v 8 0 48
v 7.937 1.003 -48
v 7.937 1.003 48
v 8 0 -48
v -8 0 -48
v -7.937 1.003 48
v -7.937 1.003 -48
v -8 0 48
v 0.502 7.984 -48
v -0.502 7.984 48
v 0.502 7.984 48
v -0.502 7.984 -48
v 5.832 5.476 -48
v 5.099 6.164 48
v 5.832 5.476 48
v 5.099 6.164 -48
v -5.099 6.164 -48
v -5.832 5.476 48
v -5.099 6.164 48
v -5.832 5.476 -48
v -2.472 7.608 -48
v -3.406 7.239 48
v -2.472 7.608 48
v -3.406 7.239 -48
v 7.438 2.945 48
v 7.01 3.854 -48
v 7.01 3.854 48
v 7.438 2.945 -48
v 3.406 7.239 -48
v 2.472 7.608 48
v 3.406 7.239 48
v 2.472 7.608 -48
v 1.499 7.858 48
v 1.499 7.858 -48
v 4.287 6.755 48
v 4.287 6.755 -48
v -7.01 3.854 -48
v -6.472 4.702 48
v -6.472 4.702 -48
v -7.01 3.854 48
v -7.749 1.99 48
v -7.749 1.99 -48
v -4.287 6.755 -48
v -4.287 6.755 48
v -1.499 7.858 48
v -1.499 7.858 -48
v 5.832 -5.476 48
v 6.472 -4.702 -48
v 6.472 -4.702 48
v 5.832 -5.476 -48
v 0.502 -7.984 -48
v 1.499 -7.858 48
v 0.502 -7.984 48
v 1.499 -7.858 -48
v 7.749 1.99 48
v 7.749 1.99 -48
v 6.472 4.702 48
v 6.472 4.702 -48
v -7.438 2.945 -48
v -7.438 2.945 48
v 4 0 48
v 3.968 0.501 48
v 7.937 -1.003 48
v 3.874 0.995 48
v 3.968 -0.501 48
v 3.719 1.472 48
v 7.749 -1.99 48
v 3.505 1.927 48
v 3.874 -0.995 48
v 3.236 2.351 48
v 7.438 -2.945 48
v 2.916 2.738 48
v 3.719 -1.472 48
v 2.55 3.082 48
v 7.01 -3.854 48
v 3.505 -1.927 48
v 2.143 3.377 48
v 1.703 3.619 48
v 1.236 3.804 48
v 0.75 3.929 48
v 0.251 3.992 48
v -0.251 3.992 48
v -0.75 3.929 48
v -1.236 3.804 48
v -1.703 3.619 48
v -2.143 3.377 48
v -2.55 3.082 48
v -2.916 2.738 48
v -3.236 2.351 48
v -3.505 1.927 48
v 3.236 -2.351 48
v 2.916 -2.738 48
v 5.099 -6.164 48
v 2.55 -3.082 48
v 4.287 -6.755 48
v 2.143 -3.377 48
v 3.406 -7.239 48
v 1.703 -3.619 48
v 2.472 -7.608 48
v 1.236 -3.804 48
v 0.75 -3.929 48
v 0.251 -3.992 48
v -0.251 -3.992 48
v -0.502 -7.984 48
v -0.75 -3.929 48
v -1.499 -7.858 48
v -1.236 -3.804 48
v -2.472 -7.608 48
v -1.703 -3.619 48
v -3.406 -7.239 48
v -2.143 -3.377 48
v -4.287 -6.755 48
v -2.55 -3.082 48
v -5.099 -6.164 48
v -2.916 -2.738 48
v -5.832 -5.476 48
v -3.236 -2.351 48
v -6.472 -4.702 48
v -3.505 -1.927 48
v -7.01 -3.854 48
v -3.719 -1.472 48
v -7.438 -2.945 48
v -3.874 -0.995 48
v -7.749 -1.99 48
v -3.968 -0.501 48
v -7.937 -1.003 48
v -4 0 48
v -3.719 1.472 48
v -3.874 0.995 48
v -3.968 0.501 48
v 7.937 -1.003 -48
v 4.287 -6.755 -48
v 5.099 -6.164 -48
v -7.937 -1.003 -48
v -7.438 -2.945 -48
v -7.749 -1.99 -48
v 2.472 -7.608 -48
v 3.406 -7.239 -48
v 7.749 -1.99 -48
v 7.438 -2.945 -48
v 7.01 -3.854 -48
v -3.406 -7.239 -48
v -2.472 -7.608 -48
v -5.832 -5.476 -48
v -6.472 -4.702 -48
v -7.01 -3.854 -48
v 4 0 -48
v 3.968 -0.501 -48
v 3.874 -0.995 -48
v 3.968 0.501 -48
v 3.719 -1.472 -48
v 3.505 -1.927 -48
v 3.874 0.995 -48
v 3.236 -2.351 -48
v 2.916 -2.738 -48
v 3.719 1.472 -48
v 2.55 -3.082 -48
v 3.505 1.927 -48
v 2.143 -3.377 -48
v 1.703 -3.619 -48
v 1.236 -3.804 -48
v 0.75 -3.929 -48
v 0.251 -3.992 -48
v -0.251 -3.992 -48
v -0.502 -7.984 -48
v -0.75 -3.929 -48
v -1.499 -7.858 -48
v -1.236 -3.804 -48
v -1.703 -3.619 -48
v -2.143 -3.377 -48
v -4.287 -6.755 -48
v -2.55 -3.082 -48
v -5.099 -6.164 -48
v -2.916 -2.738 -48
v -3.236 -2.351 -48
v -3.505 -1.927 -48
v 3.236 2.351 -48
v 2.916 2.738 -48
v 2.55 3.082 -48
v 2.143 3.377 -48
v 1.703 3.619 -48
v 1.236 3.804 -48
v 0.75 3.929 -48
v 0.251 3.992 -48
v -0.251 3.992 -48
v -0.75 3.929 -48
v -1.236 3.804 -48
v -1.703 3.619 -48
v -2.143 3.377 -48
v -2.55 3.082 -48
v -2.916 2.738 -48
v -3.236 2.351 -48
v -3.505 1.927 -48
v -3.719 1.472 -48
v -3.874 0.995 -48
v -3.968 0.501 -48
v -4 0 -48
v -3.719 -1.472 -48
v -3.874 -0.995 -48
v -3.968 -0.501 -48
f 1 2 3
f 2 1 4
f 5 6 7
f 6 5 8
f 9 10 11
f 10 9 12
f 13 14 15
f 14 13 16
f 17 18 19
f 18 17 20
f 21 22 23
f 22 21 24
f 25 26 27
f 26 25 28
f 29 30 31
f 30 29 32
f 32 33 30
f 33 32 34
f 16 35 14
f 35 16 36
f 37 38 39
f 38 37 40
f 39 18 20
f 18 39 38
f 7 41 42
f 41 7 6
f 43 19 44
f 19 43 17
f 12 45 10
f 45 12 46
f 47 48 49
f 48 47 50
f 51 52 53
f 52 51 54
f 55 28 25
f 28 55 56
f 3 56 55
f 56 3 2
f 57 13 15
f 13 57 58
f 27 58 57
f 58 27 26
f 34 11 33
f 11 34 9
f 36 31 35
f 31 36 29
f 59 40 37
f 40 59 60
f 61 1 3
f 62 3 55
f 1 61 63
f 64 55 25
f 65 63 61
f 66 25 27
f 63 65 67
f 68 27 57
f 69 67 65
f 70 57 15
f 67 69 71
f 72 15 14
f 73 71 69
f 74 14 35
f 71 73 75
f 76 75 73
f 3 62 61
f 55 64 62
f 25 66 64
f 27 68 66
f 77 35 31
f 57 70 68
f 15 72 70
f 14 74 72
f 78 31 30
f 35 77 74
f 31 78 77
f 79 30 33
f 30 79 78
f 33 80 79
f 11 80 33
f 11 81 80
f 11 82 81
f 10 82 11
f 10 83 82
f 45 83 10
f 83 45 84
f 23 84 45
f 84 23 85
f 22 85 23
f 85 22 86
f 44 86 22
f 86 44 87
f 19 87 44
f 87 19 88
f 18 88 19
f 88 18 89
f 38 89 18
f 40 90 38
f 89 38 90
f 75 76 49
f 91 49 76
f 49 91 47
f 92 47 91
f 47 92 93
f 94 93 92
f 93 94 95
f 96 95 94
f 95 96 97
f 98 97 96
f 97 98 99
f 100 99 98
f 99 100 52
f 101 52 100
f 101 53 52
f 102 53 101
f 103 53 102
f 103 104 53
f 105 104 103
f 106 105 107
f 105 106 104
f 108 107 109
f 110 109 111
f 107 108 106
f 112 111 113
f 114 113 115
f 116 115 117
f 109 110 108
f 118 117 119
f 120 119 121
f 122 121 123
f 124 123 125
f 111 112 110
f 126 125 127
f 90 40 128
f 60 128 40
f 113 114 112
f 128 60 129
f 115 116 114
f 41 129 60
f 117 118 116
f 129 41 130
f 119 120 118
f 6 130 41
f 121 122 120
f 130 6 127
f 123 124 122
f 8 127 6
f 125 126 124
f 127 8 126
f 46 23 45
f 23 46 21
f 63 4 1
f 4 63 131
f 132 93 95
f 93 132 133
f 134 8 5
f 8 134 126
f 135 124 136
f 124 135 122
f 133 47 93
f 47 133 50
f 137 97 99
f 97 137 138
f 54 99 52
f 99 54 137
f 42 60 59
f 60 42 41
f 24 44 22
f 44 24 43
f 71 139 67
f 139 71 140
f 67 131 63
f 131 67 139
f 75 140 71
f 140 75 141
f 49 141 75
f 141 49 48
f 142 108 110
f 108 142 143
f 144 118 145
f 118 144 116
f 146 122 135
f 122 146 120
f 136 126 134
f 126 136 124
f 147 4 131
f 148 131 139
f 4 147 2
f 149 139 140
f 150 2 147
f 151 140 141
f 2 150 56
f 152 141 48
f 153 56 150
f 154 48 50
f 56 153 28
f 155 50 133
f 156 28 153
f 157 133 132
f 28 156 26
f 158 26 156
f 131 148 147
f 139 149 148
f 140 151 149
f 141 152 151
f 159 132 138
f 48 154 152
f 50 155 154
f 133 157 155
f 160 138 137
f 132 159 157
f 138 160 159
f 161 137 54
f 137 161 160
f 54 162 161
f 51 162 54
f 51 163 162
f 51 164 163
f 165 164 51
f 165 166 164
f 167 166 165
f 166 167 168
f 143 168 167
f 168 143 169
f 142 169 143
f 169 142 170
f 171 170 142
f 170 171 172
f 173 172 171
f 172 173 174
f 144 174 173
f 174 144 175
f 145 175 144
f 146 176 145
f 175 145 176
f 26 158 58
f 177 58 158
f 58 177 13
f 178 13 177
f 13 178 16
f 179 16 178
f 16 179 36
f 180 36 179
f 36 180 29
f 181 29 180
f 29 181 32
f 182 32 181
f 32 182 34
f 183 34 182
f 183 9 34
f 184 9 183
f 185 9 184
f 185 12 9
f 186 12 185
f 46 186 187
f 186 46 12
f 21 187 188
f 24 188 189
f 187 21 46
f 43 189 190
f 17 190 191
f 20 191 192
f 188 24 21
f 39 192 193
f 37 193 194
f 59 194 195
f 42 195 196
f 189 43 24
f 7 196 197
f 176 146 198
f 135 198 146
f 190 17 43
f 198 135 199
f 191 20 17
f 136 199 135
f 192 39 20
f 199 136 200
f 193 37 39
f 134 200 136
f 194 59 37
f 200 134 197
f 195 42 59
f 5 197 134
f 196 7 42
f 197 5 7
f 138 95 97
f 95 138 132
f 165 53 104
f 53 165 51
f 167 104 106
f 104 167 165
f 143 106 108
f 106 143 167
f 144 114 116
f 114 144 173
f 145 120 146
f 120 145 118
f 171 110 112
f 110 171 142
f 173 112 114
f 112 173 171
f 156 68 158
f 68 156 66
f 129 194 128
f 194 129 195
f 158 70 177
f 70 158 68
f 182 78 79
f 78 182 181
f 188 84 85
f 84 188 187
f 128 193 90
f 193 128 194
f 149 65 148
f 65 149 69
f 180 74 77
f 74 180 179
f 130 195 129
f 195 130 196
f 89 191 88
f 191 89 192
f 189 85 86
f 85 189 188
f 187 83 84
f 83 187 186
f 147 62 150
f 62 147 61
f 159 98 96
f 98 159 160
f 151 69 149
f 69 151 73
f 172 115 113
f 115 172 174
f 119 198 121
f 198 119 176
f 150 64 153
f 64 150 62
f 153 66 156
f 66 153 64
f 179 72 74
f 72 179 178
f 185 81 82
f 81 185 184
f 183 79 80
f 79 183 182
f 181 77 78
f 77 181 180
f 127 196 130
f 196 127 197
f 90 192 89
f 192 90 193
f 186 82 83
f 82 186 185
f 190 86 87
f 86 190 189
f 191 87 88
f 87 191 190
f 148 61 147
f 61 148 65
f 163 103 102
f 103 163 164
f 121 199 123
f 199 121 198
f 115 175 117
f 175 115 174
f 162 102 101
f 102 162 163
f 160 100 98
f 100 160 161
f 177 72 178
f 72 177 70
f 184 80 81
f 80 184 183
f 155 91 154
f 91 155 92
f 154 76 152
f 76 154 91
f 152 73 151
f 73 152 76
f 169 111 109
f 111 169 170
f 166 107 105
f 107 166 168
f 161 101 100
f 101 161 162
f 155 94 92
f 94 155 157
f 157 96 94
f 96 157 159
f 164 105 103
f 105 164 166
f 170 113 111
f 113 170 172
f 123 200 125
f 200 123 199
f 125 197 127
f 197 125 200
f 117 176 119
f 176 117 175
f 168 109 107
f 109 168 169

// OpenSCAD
$fn = 50;


difference() {
	union() {
		translate(v = [0, 0, -48.0000000000]) {
			cylinder(h = 96, r = 8.0000000000);
		}
	}
	union() {
		translate(v = [0, 0, -100.0000000000]) {
			cylinder(h = 200, r = 4.0000000000);
		}
	}
}
